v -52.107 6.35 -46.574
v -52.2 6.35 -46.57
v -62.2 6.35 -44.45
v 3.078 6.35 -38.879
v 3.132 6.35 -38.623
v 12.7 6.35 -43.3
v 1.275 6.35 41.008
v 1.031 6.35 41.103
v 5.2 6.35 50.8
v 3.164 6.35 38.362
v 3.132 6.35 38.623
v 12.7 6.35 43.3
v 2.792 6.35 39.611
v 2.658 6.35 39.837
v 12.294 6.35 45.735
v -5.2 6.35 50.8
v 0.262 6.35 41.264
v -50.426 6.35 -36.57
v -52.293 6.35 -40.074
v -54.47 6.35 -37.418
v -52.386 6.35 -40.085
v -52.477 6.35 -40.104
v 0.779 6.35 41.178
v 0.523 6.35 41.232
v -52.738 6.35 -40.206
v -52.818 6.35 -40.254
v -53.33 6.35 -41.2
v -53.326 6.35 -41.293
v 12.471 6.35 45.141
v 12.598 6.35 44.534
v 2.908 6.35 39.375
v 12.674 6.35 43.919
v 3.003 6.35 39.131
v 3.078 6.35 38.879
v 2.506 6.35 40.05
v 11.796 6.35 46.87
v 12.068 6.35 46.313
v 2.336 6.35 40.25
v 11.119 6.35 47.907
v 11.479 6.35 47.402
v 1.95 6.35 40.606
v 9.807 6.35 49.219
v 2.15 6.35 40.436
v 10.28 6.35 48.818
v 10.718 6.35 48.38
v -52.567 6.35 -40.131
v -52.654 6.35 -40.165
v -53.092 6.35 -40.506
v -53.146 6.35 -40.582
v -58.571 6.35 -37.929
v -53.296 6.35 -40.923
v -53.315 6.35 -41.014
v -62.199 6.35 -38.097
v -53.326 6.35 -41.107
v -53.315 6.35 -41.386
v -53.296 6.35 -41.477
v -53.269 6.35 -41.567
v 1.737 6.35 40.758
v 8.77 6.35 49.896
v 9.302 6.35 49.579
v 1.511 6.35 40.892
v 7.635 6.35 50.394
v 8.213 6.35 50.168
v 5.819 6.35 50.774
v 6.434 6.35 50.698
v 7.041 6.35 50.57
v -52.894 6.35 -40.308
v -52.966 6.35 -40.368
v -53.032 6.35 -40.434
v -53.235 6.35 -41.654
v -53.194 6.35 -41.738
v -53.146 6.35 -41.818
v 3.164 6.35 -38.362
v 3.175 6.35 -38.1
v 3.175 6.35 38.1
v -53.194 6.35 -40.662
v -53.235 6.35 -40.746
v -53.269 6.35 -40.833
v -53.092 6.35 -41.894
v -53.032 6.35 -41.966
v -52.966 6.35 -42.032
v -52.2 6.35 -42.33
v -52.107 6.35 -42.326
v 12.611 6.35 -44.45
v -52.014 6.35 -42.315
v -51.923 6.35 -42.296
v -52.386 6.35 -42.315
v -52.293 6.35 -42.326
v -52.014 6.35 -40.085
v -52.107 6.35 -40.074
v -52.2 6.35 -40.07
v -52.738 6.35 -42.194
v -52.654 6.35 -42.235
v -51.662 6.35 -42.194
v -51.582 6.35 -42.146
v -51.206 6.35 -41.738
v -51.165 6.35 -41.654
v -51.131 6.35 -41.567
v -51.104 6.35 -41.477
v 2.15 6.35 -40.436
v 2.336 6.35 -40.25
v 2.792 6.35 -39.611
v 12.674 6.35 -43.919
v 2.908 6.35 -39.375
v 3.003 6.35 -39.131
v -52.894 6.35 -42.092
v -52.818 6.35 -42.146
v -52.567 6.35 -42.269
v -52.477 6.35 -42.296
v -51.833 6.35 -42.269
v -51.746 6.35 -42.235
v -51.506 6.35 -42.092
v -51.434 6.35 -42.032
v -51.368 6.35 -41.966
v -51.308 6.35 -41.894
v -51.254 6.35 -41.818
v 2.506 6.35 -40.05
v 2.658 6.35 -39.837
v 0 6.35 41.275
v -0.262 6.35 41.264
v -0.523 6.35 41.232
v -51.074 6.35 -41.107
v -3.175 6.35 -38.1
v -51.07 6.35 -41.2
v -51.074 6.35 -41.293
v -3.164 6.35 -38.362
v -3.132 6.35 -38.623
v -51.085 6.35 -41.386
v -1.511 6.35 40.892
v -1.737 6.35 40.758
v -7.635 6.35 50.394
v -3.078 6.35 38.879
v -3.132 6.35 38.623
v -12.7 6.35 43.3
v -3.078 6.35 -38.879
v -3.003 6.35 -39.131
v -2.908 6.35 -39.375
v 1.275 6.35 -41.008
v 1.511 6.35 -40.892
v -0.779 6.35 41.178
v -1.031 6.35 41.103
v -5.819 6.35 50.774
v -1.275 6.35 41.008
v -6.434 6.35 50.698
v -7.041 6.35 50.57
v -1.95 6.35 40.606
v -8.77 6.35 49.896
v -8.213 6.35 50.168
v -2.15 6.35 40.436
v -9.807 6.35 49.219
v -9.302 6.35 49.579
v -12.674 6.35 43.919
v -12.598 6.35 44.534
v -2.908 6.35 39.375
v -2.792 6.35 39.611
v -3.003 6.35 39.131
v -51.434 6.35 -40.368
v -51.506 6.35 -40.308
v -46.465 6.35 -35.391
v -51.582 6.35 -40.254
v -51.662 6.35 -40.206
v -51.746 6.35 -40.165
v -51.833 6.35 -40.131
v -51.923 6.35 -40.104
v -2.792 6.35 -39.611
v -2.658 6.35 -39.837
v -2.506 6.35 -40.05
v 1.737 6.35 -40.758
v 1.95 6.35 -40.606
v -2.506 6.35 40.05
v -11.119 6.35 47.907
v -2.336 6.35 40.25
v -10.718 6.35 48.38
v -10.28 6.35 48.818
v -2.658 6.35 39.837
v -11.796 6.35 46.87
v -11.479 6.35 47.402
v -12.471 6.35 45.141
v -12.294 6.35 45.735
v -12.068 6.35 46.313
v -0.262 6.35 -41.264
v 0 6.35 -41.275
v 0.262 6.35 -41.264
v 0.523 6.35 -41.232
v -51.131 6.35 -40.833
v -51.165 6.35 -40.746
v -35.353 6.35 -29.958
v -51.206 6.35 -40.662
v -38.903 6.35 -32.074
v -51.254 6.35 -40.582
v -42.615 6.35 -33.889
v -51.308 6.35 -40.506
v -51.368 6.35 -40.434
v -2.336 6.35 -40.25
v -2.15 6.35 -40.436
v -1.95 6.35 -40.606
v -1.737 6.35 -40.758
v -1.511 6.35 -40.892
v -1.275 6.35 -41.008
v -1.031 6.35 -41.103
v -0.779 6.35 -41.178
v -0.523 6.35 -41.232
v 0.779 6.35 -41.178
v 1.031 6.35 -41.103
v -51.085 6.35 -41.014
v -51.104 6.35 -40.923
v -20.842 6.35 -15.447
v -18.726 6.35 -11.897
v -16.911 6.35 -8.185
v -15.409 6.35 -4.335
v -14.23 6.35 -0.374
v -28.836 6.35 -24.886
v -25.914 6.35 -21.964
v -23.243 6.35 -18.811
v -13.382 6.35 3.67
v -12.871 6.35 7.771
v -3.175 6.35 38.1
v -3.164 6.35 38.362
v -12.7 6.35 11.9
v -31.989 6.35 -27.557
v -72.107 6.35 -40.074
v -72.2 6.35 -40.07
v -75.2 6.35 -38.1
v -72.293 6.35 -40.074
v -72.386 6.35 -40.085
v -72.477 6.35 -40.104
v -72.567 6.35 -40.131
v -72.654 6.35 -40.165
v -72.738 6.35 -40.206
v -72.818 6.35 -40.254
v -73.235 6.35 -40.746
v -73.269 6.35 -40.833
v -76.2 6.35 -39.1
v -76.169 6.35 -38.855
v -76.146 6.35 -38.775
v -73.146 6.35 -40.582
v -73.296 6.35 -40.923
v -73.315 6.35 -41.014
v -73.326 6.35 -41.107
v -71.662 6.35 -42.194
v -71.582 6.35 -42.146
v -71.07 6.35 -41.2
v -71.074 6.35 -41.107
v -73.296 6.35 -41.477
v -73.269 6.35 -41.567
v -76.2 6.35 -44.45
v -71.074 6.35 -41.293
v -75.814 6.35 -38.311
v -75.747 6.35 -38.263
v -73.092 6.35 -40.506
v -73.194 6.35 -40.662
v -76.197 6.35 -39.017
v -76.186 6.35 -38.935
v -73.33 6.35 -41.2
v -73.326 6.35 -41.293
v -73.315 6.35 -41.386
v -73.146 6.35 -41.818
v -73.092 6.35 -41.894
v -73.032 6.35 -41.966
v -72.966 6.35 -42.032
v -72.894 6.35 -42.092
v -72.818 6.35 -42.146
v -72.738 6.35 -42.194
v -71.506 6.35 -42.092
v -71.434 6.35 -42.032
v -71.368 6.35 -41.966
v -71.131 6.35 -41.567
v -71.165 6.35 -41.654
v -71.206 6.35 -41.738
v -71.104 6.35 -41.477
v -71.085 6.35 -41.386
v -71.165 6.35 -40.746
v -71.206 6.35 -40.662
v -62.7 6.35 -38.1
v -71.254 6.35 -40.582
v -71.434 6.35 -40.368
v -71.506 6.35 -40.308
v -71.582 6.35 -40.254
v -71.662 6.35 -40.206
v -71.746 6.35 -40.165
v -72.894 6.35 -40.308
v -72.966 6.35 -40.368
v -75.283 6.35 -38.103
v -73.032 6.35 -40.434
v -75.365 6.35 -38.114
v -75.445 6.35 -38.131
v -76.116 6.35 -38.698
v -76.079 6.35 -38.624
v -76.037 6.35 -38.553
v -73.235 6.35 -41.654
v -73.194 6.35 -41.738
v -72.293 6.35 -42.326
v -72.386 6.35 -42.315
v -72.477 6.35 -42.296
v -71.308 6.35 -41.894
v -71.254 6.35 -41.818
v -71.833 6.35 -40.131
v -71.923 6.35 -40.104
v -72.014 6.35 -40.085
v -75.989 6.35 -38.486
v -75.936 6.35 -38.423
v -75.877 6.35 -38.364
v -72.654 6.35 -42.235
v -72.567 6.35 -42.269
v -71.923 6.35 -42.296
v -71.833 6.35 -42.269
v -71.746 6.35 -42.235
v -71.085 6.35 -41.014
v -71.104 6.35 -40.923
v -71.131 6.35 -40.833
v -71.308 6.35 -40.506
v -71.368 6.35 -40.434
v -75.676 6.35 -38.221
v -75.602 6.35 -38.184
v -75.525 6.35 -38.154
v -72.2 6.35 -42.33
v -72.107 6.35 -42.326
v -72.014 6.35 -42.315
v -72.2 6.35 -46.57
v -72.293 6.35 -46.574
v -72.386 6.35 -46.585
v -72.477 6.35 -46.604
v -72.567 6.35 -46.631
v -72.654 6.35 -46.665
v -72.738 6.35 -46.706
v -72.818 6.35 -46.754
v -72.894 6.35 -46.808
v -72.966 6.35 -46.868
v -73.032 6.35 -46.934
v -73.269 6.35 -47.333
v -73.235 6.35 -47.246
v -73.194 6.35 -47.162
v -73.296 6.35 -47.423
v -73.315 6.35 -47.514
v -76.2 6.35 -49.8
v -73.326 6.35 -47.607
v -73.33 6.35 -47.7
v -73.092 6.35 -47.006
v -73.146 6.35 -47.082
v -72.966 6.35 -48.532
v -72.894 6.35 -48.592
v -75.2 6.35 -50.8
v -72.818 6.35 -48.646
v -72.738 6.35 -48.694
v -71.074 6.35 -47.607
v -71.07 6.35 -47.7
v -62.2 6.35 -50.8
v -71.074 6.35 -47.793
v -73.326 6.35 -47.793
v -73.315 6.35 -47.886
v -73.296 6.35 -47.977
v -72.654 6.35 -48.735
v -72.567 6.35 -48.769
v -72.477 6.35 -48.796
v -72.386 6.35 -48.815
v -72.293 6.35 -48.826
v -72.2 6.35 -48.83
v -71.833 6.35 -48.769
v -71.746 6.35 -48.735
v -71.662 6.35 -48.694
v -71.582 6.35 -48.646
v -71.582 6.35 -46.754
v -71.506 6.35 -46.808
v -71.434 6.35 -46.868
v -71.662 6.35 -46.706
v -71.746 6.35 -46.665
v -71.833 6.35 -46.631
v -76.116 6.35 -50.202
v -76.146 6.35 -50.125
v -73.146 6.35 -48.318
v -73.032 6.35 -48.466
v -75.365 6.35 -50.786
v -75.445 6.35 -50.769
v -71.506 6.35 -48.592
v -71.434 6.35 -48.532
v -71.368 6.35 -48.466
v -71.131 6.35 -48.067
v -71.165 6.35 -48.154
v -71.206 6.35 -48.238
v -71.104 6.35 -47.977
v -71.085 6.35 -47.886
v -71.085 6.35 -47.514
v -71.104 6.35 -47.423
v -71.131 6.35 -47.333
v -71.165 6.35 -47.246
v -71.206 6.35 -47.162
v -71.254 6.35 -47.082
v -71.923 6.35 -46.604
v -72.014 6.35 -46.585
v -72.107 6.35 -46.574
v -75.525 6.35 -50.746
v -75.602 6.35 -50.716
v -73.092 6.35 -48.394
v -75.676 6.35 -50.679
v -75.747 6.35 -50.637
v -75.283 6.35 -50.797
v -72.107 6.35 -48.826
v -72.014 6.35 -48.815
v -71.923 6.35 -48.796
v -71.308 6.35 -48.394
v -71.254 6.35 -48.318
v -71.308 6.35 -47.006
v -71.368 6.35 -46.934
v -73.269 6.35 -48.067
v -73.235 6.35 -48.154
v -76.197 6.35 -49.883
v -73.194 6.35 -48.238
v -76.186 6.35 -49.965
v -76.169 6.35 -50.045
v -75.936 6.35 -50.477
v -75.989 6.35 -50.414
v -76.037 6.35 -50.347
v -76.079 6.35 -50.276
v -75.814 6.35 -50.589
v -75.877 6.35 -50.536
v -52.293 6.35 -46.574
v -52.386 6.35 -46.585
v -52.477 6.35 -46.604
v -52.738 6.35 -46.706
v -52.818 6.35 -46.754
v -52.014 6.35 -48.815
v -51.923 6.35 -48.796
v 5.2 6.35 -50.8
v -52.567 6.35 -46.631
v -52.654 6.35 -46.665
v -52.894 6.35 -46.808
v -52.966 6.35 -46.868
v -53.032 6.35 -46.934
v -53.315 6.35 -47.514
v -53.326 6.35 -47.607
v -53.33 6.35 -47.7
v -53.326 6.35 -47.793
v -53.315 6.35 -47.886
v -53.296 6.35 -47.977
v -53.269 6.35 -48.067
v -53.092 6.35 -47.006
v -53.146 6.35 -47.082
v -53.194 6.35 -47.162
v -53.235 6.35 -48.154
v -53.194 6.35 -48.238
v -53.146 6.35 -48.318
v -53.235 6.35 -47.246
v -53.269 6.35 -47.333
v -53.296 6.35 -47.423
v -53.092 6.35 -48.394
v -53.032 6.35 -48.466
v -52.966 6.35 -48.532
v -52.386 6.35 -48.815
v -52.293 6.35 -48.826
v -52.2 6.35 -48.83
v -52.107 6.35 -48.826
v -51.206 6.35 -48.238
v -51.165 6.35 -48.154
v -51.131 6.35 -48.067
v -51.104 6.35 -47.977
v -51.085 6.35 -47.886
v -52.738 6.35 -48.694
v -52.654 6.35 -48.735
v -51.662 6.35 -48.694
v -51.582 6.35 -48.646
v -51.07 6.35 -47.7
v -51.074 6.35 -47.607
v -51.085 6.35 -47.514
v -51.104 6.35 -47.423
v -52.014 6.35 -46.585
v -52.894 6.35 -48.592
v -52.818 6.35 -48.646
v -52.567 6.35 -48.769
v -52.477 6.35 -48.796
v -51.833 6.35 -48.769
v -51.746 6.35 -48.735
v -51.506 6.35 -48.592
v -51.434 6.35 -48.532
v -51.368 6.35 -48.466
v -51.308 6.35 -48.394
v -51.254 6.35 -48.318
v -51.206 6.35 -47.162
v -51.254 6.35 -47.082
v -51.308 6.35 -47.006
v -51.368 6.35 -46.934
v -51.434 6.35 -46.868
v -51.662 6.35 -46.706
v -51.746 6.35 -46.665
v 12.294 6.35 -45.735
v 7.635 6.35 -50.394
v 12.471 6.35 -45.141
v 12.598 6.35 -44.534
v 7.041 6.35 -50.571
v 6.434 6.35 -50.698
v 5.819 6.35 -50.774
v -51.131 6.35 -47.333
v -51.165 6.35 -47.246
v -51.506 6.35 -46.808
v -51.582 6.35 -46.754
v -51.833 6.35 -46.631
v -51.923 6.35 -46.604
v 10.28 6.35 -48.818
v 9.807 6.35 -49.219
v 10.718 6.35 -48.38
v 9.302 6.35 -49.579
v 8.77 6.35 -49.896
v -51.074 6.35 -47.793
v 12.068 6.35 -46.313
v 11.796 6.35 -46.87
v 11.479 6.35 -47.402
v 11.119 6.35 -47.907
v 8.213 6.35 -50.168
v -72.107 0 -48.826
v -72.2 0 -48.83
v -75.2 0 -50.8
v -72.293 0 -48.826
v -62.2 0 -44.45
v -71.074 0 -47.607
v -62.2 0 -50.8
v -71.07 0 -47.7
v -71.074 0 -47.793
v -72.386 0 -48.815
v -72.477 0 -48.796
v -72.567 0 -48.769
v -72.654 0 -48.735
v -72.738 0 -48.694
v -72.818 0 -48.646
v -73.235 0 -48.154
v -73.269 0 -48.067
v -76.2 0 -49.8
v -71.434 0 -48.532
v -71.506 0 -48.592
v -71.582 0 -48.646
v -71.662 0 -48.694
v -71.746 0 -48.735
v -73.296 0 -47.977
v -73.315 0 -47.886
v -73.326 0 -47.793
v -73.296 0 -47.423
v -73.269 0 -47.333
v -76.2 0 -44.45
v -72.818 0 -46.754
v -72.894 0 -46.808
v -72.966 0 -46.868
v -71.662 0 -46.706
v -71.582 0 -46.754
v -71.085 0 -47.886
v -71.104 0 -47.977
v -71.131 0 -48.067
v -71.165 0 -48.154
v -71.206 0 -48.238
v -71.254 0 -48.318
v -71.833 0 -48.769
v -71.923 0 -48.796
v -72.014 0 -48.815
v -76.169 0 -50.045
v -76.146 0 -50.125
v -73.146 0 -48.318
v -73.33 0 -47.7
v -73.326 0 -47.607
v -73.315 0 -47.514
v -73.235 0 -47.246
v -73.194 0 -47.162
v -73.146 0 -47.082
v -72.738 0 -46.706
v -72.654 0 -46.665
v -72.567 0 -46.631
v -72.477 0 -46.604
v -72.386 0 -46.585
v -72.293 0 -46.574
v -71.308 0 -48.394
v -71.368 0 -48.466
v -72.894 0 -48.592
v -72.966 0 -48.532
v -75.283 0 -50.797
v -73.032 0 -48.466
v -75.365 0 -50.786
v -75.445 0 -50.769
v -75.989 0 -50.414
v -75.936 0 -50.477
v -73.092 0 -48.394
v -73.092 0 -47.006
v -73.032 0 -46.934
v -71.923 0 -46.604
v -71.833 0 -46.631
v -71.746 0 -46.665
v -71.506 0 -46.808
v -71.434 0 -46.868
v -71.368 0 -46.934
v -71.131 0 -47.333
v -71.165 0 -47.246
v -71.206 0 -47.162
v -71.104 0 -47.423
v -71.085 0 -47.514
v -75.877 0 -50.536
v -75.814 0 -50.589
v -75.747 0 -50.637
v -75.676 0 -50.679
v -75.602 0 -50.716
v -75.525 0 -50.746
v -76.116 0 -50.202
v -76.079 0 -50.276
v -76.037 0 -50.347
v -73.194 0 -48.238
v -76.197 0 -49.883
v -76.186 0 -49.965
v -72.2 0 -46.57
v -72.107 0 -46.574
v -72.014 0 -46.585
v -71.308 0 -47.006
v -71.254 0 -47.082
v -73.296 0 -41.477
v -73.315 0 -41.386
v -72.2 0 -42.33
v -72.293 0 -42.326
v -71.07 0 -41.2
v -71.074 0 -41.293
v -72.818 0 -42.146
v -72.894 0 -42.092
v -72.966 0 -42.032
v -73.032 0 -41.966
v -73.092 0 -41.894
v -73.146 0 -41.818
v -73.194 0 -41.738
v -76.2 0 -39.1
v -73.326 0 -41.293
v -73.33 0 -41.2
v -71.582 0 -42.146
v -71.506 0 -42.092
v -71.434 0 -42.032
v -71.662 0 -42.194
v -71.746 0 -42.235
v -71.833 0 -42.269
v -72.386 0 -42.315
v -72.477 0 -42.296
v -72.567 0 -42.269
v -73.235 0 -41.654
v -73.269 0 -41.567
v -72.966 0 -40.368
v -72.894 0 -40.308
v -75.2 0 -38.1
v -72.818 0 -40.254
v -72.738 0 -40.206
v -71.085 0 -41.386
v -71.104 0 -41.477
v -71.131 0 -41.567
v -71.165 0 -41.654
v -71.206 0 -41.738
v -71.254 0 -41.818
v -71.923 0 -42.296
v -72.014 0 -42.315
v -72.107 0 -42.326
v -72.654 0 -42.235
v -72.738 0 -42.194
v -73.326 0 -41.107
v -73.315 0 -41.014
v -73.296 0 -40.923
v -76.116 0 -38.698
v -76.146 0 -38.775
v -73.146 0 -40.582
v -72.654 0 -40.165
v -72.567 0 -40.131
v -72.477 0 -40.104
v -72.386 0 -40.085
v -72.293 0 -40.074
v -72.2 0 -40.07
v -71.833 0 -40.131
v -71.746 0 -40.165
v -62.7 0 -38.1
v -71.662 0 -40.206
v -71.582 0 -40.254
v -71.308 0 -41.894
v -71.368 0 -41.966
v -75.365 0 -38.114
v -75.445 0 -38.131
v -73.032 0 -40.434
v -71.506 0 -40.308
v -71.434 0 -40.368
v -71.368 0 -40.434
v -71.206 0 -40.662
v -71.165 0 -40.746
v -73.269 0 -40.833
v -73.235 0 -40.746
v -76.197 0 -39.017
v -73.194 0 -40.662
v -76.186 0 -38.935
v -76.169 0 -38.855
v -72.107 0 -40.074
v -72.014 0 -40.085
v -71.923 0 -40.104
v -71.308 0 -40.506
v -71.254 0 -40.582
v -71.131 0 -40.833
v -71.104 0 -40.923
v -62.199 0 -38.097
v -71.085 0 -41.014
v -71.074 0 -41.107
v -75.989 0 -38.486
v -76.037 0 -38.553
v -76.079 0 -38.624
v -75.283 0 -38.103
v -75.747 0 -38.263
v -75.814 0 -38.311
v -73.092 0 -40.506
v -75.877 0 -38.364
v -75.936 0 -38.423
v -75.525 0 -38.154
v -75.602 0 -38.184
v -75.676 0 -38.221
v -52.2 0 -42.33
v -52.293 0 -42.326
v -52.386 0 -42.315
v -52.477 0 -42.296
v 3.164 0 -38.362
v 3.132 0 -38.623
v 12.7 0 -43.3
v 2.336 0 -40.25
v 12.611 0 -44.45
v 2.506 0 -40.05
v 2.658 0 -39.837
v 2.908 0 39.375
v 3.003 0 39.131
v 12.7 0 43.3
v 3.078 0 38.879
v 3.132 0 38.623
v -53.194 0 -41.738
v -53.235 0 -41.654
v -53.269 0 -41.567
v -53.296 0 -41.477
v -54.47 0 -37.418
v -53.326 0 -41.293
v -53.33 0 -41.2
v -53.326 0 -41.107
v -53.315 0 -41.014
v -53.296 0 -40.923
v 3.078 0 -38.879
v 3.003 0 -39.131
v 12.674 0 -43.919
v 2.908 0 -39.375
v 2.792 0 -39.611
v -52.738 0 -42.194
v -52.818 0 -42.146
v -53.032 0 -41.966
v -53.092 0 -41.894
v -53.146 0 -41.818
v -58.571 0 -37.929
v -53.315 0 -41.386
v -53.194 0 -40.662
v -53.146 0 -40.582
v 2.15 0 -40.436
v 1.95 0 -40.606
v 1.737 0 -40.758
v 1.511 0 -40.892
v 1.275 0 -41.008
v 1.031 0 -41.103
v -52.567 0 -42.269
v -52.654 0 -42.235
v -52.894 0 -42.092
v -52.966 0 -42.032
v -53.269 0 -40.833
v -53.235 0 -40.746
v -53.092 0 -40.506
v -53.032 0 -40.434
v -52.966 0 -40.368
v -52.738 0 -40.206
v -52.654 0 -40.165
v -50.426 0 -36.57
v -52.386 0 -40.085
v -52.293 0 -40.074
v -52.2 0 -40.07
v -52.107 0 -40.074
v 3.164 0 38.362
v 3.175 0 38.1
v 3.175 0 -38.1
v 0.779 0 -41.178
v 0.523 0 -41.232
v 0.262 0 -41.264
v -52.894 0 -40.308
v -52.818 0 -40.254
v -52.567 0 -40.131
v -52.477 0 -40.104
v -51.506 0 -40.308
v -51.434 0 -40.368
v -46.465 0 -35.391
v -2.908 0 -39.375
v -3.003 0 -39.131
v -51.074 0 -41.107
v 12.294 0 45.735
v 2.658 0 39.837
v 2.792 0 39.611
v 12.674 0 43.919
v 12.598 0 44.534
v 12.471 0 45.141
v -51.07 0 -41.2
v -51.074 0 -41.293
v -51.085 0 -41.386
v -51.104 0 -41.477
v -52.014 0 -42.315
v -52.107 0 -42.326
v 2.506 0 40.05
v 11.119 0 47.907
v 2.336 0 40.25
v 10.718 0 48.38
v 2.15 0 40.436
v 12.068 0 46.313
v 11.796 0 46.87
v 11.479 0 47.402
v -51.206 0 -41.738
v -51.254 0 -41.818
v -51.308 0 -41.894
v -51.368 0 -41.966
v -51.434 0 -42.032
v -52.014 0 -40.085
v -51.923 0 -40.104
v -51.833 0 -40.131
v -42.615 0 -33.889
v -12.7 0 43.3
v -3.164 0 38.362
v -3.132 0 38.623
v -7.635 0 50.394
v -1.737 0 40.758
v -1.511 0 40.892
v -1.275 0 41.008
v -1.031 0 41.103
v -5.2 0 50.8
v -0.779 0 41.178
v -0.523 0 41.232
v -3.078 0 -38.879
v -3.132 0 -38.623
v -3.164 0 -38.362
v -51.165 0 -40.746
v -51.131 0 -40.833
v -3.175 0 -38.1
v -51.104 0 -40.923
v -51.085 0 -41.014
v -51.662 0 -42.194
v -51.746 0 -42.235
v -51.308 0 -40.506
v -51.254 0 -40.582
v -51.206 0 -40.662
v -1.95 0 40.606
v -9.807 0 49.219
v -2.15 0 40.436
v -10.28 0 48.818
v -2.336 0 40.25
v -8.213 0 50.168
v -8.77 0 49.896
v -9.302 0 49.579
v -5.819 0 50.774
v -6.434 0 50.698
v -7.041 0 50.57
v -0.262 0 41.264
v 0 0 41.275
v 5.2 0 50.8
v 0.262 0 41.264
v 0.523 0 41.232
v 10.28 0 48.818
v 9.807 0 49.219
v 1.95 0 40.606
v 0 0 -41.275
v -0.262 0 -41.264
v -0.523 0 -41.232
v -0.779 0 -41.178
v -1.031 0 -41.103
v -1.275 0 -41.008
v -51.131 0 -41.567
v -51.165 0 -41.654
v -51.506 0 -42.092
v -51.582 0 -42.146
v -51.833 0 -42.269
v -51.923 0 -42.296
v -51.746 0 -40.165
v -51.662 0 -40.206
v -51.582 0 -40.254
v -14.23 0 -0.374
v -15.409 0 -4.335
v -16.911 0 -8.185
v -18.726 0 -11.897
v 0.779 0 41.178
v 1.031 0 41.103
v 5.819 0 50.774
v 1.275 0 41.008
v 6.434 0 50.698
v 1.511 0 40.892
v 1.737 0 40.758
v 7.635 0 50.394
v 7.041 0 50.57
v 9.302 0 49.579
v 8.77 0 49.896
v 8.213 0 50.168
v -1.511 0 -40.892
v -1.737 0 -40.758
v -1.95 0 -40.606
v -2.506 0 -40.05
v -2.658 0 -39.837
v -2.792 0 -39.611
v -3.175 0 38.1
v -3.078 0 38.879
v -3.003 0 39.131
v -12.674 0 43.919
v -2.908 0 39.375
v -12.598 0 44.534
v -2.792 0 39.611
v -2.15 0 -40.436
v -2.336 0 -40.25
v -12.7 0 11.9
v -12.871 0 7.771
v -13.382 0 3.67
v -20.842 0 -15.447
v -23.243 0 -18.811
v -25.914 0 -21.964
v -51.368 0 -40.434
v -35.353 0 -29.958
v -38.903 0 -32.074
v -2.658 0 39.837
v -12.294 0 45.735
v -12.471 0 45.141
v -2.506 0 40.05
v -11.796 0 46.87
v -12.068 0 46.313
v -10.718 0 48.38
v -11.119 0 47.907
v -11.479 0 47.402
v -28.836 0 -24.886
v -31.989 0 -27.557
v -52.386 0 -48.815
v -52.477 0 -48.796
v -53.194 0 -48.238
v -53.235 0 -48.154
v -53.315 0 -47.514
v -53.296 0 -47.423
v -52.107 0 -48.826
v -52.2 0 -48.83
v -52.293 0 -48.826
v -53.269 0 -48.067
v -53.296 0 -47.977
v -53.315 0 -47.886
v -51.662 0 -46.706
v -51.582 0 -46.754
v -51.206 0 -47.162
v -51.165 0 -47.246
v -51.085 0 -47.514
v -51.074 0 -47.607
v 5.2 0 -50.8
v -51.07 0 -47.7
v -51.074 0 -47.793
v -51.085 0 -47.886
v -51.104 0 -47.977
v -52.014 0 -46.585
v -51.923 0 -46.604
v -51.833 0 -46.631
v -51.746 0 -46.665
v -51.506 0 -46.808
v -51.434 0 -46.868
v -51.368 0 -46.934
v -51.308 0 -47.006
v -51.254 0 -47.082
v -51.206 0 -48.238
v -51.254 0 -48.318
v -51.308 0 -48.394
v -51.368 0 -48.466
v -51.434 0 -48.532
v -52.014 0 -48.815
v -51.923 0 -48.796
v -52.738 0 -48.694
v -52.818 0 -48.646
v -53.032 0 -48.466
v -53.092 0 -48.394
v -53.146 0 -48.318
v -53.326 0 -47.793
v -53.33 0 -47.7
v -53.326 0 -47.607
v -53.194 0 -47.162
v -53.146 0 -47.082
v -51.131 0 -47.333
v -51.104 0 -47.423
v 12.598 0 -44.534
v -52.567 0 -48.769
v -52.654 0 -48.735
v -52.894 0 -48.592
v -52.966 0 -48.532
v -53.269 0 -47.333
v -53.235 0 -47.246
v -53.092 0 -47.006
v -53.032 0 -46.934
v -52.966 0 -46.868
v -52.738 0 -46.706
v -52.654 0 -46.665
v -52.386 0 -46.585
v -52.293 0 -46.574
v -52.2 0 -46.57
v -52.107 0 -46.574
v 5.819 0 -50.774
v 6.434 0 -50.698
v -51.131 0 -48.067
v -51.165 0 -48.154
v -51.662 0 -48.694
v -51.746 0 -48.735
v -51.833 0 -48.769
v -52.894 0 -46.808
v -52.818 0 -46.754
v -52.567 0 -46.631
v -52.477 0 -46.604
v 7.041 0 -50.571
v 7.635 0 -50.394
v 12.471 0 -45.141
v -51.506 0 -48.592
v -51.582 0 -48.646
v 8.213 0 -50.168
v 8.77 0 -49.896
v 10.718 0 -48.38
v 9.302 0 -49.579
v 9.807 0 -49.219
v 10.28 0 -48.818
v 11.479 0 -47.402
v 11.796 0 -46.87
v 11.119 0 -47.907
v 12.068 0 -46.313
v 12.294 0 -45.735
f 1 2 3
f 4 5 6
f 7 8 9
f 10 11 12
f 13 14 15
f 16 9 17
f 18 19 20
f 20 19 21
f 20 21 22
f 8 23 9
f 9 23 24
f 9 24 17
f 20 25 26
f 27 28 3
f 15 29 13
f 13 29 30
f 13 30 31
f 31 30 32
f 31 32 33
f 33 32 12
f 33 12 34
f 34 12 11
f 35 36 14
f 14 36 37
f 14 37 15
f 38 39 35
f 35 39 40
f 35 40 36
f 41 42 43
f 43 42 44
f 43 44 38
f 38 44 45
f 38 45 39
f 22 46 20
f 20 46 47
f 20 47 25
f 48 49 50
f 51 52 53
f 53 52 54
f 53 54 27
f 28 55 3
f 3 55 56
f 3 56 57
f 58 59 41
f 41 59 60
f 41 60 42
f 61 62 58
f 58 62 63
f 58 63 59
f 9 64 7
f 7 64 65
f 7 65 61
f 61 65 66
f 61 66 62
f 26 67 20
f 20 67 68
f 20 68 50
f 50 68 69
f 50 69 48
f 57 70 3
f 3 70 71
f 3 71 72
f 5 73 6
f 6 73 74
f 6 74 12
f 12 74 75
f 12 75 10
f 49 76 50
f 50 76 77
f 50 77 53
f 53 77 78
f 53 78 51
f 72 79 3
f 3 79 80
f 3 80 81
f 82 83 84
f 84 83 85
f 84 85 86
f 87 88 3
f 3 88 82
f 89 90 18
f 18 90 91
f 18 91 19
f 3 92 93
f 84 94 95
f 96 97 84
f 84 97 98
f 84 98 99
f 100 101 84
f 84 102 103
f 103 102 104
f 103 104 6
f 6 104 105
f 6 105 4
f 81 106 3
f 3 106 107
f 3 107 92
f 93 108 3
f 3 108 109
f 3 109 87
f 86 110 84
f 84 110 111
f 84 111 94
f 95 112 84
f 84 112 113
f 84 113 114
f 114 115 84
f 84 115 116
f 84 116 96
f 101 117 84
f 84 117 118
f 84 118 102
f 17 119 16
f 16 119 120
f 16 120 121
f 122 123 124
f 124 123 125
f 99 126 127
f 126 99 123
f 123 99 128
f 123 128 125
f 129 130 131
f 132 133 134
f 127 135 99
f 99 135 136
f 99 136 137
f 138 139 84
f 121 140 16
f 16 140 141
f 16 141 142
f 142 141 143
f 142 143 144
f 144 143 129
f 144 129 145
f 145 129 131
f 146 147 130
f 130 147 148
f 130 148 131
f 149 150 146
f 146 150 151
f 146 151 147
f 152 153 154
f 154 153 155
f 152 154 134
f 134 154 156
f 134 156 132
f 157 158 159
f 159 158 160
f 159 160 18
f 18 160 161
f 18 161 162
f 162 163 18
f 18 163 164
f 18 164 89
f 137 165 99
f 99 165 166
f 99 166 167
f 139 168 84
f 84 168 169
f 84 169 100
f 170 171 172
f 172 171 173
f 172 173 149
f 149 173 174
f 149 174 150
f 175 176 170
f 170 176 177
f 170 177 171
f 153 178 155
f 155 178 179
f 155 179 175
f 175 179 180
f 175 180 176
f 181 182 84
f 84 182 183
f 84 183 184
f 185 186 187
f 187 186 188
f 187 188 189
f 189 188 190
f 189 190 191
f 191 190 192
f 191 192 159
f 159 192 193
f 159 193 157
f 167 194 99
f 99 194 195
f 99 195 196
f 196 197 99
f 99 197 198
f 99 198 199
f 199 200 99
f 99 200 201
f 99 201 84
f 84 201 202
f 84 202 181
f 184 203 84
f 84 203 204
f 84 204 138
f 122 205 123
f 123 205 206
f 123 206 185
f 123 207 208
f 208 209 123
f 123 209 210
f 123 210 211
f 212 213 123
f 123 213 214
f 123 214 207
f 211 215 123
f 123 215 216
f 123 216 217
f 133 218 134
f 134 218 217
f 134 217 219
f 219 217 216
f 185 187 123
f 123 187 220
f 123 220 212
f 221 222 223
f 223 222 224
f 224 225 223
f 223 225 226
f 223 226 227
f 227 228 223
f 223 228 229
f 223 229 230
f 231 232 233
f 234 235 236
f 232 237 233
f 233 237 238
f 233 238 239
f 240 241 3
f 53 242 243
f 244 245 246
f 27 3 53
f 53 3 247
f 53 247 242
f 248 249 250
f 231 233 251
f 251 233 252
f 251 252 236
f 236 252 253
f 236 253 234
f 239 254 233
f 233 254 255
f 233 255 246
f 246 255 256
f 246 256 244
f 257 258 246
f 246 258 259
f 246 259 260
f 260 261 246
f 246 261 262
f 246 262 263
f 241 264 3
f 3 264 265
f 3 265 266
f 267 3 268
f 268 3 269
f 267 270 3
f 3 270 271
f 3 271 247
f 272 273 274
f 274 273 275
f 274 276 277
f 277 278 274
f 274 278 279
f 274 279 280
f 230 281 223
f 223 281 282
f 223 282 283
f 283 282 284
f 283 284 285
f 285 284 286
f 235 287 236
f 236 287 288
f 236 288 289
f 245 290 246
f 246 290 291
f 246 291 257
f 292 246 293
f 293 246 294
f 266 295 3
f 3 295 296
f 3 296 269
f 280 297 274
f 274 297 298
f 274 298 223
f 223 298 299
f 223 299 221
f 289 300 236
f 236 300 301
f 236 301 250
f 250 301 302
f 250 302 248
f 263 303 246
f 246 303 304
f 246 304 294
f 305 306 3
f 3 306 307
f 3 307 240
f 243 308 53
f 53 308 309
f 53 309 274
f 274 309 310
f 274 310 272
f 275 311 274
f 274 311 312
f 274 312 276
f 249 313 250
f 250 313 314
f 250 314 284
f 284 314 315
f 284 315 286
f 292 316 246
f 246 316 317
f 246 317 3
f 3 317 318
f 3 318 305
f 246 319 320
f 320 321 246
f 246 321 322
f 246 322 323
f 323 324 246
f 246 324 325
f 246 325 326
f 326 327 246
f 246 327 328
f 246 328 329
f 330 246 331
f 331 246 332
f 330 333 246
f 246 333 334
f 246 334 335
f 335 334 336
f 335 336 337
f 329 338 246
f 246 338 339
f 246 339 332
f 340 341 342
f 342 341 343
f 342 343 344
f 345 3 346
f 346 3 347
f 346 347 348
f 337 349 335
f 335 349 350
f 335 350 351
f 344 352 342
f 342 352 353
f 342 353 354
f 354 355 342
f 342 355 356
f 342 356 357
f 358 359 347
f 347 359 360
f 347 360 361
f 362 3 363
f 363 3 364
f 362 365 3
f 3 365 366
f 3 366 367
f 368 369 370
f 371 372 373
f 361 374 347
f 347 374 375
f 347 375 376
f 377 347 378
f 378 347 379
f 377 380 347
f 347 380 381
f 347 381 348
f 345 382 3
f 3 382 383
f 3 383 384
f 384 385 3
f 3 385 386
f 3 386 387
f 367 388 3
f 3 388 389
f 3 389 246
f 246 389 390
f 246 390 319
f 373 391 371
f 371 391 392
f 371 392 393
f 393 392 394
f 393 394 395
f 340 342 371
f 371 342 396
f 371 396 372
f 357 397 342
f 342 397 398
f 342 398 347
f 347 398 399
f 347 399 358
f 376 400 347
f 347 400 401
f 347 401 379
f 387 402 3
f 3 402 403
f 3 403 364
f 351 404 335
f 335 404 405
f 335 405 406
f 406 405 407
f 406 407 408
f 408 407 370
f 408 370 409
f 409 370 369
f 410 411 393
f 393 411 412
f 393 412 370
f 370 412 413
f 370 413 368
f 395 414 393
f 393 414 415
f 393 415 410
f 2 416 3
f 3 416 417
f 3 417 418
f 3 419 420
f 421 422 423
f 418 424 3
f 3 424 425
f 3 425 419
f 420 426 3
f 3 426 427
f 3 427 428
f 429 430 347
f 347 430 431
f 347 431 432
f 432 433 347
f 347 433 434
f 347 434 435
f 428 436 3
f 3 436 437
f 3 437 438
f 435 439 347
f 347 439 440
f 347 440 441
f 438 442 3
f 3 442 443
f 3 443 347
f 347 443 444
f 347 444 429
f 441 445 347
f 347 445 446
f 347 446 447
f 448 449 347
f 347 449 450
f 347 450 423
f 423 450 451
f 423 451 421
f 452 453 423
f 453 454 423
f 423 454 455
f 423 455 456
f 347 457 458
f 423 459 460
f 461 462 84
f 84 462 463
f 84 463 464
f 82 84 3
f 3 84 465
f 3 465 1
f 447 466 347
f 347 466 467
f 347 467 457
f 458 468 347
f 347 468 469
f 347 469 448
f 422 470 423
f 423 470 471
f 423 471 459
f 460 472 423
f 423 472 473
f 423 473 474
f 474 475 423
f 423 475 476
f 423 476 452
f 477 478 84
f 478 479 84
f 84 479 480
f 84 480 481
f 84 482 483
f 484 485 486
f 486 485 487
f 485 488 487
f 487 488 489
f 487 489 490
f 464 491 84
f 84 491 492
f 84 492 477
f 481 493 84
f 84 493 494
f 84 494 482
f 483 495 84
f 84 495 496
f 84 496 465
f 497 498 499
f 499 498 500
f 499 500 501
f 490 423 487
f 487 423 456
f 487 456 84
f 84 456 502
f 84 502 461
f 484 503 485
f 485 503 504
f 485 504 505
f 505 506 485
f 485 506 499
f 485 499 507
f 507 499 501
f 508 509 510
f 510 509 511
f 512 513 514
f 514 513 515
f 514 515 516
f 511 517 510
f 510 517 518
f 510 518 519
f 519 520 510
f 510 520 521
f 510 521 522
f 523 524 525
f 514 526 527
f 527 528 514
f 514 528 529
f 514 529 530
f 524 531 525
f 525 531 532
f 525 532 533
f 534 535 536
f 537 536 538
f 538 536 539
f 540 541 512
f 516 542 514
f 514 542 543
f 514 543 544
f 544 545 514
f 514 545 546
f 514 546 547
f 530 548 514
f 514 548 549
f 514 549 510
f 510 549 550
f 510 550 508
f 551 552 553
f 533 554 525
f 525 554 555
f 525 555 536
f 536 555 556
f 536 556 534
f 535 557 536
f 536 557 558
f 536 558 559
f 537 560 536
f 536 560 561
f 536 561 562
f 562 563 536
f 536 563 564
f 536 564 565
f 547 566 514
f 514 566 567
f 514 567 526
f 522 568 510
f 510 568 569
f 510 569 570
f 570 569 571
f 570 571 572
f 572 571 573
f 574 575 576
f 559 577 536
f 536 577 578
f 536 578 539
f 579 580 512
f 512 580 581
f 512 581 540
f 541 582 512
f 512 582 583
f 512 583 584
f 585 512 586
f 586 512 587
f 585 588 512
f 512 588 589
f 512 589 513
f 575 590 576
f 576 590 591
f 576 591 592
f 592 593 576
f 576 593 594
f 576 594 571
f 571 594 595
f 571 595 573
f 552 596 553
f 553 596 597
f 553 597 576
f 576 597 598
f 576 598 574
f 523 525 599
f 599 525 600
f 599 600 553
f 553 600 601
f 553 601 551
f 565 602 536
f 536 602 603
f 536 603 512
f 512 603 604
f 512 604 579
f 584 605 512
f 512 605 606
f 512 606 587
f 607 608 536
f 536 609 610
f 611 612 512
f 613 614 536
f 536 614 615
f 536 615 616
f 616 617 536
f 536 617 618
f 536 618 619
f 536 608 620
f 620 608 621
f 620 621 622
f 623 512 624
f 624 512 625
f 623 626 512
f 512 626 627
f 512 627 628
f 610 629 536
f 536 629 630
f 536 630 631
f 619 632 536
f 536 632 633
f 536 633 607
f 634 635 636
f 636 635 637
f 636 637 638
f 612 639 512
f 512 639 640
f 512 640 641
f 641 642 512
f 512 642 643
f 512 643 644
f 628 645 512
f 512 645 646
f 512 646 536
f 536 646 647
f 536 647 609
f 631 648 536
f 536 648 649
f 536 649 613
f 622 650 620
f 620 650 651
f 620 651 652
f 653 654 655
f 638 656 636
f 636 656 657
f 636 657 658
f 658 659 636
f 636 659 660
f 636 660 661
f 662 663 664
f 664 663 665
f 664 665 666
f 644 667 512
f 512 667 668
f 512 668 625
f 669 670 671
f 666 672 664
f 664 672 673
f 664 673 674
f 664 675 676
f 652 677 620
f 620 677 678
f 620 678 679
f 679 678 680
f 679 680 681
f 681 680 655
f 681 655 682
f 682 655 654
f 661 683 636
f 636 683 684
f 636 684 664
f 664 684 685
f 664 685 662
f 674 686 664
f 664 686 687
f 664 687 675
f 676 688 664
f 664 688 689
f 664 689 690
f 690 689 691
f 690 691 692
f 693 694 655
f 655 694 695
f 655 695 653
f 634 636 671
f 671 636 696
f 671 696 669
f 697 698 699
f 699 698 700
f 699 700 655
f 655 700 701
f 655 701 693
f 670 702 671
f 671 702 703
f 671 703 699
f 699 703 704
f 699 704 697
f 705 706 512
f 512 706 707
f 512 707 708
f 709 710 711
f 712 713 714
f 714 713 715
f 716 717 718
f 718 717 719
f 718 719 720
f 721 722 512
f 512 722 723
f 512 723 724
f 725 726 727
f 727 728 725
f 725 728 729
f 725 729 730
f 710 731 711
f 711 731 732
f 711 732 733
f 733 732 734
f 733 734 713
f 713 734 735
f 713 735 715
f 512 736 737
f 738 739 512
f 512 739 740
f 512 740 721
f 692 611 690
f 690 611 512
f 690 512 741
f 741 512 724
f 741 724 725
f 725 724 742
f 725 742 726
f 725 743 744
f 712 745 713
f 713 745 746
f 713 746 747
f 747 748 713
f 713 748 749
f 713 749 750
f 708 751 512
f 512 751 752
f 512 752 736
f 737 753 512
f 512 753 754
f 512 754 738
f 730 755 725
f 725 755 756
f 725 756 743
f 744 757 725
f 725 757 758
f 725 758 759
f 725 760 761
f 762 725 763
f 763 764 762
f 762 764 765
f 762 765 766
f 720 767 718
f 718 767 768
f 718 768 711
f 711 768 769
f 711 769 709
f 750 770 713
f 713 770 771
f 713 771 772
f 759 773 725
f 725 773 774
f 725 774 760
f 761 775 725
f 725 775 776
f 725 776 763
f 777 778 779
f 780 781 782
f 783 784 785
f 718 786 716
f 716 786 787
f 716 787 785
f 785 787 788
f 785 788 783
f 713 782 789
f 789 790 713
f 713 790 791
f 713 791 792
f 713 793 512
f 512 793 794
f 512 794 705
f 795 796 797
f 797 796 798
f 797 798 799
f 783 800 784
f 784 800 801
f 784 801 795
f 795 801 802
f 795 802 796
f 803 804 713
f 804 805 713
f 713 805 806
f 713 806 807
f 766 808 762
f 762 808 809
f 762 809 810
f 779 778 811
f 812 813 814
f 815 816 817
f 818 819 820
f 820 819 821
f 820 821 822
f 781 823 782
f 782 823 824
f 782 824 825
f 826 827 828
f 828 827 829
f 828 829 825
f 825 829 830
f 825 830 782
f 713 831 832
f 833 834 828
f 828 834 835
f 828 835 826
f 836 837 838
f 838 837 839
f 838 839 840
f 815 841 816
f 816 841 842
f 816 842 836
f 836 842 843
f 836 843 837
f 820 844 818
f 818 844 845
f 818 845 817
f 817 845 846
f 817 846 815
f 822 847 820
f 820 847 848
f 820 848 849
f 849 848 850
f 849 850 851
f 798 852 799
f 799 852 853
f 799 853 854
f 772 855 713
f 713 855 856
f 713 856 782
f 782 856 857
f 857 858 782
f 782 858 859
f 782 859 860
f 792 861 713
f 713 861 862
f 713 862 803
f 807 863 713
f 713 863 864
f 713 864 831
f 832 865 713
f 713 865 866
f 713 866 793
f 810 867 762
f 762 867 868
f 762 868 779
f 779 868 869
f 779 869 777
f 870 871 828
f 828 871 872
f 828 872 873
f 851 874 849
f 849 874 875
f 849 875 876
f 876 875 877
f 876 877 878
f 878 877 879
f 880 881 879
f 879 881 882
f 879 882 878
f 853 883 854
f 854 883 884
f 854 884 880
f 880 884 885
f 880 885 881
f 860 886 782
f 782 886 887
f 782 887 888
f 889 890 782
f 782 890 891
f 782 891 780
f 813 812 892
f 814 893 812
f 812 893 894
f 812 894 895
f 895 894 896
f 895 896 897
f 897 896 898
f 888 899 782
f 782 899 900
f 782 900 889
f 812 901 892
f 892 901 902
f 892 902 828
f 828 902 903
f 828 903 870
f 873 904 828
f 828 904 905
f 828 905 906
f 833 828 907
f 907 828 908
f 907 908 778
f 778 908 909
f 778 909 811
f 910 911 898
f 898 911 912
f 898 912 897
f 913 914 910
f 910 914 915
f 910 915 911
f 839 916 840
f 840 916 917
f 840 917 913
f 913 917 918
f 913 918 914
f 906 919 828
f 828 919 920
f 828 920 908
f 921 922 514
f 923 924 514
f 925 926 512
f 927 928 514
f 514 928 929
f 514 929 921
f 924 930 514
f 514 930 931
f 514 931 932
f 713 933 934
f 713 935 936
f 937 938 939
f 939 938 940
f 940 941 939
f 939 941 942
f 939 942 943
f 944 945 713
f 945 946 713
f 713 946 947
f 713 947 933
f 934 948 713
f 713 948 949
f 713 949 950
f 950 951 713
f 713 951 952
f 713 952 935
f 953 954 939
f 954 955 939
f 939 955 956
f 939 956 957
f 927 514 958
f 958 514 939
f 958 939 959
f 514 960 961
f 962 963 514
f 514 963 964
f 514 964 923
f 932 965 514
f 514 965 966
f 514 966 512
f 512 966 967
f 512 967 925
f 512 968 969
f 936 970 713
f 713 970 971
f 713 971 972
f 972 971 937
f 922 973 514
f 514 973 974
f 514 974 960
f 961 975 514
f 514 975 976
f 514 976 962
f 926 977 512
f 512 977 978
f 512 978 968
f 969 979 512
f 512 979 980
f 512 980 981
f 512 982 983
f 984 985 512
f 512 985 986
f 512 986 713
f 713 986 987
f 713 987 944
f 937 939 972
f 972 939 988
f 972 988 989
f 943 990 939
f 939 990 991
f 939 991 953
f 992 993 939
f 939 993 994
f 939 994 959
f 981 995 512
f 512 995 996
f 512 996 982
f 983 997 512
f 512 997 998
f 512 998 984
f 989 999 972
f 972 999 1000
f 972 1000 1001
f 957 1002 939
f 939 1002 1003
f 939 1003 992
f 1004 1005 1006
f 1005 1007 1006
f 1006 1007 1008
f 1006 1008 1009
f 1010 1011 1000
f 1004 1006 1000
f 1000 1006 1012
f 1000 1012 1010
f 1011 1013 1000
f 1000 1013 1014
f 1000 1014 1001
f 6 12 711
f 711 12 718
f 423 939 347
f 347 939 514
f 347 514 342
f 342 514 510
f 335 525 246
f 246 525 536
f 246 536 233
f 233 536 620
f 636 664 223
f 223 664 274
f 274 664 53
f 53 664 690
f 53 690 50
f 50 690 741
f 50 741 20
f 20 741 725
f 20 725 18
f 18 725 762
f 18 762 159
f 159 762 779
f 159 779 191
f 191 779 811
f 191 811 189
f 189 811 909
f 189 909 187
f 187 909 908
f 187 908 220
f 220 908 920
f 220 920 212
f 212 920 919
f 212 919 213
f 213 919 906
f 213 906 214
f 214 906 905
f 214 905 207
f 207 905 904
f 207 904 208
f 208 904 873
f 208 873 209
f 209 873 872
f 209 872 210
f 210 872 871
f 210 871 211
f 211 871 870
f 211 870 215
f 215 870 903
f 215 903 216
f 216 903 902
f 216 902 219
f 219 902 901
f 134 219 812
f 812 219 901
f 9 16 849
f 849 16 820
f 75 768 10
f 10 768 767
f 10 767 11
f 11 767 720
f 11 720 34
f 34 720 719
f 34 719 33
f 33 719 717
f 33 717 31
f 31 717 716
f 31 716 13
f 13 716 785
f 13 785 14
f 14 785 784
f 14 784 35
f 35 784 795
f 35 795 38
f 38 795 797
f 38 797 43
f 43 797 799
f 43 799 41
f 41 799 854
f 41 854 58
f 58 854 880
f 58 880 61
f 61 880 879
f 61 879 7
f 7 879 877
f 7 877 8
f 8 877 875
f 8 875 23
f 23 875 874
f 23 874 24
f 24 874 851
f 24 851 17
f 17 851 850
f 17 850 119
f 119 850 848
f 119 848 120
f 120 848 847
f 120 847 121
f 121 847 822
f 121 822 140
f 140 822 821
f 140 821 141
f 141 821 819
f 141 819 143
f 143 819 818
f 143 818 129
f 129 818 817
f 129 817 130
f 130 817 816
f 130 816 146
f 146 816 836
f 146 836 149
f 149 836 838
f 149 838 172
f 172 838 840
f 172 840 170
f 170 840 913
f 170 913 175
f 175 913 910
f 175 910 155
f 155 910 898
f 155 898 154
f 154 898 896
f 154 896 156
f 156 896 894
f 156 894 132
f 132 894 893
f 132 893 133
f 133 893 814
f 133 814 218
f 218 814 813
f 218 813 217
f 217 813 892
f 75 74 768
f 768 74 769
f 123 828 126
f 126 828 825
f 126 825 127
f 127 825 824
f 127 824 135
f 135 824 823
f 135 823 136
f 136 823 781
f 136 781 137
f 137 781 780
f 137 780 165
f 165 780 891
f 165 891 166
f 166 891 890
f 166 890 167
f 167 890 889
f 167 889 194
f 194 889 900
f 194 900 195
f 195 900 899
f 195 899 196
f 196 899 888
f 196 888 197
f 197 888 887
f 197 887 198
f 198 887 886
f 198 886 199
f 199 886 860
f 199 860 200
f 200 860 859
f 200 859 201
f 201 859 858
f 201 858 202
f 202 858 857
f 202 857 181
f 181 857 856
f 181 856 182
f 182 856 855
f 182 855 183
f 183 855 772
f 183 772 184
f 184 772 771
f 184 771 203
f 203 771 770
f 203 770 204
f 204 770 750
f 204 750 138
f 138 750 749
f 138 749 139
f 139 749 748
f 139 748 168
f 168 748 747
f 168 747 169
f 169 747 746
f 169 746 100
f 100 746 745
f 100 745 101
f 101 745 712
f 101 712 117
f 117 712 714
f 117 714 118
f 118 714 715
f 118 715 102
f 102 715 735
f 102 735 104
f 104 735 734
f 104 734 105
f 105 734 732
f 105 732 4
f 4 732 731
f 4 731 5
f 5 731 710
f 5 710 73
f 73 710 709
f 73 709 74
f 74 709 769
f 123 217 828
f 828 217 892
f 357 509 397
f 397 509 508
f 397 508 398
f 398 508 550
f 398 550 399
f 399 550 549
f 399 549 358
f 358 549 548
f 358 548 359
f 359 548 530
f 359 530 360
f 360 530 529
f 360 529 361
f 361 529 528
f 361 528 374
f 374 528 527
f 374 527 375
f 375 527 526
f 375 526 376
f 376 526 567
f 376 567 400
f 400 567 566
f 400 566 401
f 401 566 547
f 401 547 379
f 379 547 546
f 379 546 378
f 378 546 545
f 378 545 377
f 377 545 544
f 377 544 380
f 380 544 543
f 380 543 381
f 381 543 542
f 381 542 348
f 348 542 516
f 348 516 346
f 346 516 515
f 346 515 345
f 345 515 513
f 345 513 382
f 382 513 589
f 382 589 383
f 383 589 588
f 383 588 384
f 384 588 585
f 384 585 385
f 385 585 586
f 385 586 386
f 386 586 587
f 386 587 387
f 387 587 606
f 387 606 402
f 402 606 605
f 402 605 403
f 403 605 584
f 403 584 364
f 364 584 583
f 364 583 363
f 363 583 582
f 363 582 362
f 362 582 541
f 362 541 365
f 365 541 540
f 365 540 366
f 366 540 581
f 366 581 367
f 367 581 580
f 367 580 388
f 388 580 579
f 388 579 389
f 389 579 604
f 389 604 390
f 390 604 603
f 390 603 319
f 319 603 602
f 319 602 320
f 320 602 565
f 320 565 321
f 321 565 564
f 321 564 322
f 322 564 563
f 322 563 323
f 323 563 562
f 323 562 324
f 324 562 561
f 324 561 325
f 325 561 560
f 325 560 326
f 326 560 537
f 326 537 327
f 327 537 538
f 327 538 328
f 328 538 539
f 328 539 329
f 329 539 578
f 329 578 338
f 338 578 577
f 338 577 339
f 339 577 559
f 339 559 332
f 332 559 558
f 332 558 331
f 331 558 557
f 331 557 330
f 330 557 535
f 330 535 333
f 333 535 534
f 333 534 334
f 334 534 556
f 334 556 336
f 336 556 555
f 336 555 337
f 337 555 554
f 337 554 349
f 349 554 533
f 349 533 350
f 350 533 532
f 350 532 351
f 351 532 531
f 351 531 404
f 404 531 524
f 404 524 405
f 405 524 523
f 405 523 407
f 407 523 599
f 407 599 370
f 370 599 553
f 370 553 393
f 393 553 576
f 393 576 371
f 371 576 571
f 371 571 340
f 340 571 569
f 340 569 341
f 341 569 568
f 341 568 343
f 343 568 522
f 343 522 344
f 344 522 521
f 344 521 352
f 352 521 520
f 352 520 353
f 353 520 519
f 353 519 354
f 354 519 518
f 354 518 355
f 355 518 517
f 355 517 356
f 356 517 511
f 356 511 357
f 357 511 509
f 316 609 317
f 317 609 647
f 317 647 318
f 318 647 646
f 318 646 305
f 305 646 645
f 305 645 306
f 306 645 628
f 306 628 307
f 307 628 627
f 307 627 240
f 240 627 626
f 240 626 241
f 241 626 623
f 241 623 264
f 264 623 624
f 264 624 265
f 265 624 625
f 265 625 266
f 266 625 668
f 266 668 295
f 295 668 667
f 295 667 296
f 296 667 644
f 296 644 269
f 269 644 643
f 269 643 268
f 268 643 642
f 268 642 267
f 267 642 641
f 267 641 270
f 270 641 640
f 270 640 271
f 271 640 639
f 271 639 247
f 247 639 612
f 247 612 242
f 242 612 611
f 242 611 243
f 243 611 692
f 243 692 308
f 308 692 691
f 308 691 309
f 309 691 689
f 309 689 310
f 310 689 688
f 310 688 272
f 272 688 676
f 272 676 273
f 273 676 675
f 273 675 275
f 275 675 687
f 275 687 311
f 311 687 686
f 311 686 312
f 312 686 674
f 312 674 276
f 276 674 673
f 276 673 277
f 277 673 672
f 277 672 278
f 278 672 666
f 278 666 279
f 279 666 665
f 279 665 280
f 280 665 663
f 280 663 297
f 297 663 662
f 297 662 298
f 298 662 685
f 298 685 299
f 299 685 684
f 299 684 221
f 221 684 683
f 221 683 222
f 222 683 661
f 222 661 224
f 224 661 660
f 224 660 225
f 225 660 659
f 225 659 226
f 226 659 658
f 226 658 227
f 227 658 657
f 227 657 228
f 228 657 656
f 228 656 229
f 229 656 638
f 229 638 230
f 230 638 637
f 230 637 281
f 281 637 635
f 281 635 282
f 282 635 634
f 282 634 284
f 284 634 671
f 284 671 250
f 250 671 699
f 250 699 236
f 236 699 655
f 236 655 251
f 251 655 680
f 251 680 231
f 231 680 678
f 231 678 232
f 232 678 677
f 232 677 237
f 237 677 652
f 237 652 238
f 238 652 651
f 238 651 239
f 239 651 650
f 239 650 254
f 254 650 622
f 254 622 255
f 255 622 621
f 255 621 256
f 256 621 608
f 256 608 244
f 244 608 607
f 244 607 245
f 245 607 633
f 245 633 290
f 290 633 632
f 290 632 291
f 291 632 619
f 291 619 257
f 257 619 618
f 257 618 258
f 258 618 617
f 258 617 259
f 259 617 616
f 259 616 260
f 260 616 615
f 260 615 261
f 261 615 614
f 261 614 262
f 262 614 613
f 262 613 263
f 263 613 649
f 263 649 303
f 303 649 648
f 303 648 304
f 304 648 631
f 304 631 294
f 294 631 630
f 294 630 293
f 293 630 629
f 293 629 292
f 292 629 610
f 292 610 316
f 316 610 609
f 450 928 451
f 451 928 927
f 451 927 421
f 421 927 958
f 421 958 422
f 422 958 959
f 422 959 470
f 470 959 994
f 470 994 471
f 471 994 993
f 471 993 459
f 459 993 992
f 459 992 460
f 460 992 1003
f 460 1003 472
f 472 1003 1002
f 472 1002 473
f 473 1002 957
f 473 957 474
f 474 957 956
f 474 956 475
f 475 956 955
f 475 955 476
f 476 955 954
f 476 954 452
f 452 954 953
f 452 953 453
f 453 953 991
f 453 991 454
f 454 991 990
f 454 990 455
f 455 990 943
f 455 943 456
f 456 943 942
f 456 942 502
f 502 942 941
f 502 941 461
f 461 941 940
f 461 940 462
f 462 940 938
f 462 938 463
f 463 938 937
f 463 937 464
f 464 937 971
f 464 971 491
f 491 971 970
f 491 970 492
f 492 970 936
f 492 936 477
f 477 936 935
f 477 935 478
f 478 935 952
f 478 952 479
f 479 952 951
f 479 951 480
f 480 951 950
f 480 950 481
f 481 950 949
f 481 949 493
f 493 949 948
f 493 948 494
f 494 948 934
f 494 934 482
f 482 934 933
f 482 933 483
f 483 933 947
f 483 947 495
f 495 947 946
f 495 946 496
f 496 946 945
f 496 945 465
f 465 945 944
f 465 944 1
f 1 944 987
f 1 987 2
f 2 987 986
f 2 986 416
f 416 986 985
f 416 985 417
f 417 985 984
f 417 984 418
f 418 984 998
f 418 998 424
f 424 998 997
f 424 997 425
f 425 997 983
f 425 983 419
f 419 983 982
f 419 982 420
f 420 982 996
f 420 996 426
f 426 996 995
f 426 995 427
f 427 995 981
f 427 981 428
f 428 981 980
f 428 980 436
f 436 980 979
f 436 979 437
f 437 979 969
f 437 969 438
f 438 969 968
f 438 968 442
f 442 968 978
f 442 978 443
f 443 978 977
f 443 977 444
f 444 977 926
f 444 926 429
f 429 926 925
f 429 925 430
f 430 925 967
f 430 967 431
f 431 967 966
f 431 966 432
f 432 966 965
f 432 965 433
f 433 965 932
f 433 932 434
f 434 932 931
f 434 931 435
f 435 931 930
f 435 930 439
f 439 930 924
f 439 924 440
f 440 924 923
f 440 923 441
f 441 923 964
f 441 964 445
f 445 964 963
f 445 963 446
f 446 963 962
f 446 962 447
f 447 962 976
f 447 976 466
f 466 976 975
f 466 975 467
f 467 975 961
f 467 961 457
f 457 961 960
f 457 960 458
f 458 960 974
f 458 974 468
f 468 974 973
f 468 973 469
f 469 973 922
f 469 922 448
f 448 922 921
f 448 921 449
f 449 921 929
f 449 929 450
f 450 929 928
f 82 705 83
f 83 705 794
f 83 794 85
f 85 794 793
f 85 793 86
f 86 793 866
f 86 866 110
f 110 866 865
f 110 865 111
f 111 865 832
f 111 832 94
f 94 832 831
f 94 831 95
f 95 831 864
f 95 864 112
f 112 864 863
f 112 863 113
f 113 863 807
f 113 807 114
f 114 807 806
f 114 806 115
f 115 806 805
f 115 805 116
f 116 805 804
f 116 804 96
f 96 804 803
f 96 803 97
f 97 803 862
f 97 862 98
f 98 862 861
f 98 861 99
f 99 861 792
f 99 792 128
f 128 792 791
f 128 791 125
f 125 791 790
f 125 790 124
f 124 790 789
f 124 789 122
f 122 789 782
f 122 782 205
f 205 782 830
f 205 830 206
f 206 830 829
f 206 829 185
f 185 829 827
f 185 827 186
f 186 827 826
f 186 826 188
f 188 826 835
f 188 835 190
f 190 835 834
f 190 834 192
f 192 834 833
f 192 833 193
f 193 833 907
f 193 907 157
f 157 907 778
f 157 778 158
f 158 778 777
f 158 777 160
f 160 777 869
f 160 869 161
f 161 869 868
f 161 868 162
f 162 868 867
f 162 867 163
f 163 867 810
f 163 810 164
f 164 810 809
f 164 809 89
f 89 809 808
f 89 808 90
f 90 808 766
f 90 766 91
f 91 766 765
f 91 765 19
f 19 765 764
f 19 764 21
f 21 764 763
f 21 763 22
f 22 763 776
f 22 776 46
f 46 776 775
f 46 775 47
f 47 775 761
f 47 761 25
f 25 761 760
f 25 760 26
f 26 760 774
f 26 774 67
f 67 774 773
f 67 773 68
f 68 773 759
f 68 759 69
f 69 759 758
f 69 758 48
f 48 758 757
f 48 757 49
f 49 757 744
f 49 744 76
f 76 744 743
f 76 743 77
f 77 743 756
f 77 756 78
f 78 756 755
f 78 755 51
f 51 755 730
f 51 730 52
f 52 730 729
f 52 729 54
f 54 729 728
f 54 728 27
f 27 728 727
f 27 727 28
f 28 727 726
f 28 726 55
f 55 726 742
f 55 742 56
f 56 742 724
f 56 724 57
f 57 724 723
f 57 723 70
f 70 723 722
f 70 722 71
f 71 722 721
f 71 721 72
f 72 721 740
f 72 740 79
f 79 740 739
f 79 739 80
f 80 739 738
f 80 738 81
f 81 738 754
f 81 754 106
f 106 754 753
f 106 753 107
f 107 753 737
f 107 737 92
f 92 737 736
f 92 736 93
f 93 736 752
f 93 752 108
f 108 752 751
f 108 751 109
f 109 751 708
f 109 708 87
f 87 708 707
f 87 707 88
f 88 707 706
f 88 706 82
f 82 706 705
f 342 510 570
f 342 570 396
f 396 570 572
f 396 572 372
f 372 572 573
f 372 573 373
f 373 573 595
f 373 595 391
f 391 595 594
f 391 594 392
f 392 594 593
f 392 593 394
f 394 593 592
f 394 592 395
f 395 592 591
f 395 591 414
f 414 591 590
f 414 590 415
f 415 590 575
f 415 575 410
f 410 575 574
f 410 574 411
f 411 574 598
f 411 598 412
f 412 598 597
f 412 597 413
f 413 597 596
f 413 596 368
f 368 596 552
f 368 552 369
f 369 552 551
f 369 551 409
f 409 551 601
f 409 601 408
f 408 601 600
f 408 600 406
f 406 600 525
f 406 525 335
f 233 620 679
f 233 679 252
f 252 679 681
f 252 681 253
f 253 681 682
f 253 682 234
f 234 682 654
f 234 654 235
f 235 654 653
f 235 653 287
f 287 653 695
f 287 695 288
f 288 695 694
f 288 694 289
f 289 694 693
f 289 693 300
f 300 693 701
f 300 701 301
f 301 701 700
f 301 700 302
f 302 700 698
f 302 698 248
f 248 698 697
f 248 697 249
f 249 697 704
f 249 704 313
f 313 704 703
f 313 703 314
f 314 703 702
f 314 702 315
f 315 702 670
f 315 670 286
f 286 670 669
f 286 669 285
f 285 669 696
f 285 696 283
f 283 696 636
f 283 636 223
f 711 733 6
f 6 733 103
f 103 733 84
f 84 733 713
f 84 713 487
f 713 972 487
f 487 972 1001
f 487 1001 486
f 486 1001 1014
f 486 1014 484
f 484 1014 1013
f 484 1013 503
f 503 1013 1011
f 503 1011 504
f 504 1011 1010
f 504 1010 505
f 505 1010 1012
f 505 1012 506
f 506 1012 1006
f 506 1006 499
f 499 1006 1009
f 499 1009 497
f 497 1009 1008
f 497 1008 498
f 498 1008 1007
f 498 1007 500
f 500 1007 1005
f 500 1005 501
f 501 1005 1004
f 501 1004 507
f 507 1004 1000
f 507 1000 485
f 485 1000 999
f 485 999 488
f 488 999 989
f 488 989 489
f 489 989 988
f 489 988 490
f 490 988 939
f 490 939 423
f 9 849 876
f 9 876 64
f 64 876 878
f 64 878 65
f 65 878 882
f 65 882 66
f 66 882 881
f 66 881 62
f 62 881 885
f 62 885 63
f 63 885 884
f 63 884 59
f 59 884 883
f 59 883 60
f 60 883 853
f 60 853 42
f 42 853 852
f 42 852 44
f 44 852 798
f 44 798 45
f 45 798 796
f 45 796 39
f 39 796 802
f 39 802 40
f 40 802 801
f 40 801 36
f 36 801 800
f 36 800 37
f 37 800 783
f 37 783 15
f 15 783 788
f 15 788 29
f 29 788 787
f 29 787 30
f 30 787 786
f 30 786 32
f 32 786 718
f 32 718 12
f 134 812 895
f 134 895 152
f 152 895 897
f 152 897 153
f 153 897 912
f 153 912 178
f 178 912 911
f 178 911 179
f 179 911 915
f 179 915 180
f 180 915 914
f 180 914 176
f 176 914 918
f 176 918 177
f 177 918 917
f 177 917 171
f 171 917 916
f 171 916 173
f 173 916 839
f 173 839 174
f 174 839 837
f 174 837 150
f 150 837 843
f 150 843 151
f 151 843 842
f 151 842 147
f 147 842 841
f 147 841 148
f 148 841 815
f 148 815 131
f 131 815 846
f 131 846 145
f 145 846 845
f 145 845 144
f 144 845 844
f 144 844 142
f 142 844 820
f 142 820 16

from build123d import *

# Parameters (mm, degrees)
SKETCH1_R           = 1.1303
BOSS_EXTRUDE2_DEPTH = 6.35
FILLET1_R           = 1
FILLET2_R           = 7.5


with BuildPart() as part:
    # Sketch1 → Boss-Extrude2 (new body)
    with BuildSketch(Plane(origin=(0, 0, 0), x_dir=(1, 0, 0), z_dir=(0, 1, 0))):
        with BuildLine():
            Line((-12.7, 50.8), (-76.2, 50.8))
            Line((-76.2, 50.8), (-76.2, 38.1))
            Line((-76.2, 38.1), (-62.7, 38.1))
            ThreePointArc((-62.7, 38.1), (-27.344660941, 23.455339059), (-12.7, -11.9))
            Line((-12.7, -11.9), (-12.7, -50.8))
            Line((-12.7, -50.8), (12.7, -50.8))
            Line((12.7, -50.8), (12.7, 50.8))
            Line((12.7, 50.8), (-12.7, 50.8))
        make_face()
        with Locations(Location((-72.2, 47.7, 0), (0, 0, 270))):
            Circle(SKETCH1_R, mode=Mode.SUBTRACT)
        with Locations(Location((-72.2, 41.2, 0), (0, 0, 270))):
            Circle(SKETCH1_R, mode=Mode.SUBTRACT)
        with Locations(Location((-52.2, 47.7, 0), (0, 0, 270))):
            Circle(SKETCH1_R, mode=Mode.SUBTRACT)
        with Locations(Location((-52.2, 41.2, 0), (0, 0, 270))):
            Circle(SKETCH1_R, mode=Mode.SUBTRACT)
        with BuildLine():
            Line((-3.175, -38.1), (-3.175, 38.1))
            ThreePointArc((-3.175, 38.1), (0, 41.275), (3.175, 38.1))
            Line((3.175, 38.1), (3.175, -38.1))
            ThreePointArc((3.175, -38.1), (0, -41.275), (-3.175, -38.1))
        make_face(mode=Mode.SUBTRACT)
    extrude(amount=BOSS_EXTRUDE2_DEPTH)

    # Fillet1
    fillet1_edges = [part.edges().sort_by_distance(p)[0] for p in [
        (-76.2, 3.175, -38.1),
        (-76.2, 3.175, -50.8),
    ]]
    fillet(fillet1_edges, radius=FILLET1_R)

    # Fillet2
    fillet2_edges = [part.edges().sort_by_distance(p)[0] for p in [
        (12.7, 3.175, 50.8),
        (-12.7, 3.175, 50.8),
        (12.7, 3.175, -50.8),
    ]]
    fillet(fillet2_edges, radius=FILLET2_R)


solid = part.part
